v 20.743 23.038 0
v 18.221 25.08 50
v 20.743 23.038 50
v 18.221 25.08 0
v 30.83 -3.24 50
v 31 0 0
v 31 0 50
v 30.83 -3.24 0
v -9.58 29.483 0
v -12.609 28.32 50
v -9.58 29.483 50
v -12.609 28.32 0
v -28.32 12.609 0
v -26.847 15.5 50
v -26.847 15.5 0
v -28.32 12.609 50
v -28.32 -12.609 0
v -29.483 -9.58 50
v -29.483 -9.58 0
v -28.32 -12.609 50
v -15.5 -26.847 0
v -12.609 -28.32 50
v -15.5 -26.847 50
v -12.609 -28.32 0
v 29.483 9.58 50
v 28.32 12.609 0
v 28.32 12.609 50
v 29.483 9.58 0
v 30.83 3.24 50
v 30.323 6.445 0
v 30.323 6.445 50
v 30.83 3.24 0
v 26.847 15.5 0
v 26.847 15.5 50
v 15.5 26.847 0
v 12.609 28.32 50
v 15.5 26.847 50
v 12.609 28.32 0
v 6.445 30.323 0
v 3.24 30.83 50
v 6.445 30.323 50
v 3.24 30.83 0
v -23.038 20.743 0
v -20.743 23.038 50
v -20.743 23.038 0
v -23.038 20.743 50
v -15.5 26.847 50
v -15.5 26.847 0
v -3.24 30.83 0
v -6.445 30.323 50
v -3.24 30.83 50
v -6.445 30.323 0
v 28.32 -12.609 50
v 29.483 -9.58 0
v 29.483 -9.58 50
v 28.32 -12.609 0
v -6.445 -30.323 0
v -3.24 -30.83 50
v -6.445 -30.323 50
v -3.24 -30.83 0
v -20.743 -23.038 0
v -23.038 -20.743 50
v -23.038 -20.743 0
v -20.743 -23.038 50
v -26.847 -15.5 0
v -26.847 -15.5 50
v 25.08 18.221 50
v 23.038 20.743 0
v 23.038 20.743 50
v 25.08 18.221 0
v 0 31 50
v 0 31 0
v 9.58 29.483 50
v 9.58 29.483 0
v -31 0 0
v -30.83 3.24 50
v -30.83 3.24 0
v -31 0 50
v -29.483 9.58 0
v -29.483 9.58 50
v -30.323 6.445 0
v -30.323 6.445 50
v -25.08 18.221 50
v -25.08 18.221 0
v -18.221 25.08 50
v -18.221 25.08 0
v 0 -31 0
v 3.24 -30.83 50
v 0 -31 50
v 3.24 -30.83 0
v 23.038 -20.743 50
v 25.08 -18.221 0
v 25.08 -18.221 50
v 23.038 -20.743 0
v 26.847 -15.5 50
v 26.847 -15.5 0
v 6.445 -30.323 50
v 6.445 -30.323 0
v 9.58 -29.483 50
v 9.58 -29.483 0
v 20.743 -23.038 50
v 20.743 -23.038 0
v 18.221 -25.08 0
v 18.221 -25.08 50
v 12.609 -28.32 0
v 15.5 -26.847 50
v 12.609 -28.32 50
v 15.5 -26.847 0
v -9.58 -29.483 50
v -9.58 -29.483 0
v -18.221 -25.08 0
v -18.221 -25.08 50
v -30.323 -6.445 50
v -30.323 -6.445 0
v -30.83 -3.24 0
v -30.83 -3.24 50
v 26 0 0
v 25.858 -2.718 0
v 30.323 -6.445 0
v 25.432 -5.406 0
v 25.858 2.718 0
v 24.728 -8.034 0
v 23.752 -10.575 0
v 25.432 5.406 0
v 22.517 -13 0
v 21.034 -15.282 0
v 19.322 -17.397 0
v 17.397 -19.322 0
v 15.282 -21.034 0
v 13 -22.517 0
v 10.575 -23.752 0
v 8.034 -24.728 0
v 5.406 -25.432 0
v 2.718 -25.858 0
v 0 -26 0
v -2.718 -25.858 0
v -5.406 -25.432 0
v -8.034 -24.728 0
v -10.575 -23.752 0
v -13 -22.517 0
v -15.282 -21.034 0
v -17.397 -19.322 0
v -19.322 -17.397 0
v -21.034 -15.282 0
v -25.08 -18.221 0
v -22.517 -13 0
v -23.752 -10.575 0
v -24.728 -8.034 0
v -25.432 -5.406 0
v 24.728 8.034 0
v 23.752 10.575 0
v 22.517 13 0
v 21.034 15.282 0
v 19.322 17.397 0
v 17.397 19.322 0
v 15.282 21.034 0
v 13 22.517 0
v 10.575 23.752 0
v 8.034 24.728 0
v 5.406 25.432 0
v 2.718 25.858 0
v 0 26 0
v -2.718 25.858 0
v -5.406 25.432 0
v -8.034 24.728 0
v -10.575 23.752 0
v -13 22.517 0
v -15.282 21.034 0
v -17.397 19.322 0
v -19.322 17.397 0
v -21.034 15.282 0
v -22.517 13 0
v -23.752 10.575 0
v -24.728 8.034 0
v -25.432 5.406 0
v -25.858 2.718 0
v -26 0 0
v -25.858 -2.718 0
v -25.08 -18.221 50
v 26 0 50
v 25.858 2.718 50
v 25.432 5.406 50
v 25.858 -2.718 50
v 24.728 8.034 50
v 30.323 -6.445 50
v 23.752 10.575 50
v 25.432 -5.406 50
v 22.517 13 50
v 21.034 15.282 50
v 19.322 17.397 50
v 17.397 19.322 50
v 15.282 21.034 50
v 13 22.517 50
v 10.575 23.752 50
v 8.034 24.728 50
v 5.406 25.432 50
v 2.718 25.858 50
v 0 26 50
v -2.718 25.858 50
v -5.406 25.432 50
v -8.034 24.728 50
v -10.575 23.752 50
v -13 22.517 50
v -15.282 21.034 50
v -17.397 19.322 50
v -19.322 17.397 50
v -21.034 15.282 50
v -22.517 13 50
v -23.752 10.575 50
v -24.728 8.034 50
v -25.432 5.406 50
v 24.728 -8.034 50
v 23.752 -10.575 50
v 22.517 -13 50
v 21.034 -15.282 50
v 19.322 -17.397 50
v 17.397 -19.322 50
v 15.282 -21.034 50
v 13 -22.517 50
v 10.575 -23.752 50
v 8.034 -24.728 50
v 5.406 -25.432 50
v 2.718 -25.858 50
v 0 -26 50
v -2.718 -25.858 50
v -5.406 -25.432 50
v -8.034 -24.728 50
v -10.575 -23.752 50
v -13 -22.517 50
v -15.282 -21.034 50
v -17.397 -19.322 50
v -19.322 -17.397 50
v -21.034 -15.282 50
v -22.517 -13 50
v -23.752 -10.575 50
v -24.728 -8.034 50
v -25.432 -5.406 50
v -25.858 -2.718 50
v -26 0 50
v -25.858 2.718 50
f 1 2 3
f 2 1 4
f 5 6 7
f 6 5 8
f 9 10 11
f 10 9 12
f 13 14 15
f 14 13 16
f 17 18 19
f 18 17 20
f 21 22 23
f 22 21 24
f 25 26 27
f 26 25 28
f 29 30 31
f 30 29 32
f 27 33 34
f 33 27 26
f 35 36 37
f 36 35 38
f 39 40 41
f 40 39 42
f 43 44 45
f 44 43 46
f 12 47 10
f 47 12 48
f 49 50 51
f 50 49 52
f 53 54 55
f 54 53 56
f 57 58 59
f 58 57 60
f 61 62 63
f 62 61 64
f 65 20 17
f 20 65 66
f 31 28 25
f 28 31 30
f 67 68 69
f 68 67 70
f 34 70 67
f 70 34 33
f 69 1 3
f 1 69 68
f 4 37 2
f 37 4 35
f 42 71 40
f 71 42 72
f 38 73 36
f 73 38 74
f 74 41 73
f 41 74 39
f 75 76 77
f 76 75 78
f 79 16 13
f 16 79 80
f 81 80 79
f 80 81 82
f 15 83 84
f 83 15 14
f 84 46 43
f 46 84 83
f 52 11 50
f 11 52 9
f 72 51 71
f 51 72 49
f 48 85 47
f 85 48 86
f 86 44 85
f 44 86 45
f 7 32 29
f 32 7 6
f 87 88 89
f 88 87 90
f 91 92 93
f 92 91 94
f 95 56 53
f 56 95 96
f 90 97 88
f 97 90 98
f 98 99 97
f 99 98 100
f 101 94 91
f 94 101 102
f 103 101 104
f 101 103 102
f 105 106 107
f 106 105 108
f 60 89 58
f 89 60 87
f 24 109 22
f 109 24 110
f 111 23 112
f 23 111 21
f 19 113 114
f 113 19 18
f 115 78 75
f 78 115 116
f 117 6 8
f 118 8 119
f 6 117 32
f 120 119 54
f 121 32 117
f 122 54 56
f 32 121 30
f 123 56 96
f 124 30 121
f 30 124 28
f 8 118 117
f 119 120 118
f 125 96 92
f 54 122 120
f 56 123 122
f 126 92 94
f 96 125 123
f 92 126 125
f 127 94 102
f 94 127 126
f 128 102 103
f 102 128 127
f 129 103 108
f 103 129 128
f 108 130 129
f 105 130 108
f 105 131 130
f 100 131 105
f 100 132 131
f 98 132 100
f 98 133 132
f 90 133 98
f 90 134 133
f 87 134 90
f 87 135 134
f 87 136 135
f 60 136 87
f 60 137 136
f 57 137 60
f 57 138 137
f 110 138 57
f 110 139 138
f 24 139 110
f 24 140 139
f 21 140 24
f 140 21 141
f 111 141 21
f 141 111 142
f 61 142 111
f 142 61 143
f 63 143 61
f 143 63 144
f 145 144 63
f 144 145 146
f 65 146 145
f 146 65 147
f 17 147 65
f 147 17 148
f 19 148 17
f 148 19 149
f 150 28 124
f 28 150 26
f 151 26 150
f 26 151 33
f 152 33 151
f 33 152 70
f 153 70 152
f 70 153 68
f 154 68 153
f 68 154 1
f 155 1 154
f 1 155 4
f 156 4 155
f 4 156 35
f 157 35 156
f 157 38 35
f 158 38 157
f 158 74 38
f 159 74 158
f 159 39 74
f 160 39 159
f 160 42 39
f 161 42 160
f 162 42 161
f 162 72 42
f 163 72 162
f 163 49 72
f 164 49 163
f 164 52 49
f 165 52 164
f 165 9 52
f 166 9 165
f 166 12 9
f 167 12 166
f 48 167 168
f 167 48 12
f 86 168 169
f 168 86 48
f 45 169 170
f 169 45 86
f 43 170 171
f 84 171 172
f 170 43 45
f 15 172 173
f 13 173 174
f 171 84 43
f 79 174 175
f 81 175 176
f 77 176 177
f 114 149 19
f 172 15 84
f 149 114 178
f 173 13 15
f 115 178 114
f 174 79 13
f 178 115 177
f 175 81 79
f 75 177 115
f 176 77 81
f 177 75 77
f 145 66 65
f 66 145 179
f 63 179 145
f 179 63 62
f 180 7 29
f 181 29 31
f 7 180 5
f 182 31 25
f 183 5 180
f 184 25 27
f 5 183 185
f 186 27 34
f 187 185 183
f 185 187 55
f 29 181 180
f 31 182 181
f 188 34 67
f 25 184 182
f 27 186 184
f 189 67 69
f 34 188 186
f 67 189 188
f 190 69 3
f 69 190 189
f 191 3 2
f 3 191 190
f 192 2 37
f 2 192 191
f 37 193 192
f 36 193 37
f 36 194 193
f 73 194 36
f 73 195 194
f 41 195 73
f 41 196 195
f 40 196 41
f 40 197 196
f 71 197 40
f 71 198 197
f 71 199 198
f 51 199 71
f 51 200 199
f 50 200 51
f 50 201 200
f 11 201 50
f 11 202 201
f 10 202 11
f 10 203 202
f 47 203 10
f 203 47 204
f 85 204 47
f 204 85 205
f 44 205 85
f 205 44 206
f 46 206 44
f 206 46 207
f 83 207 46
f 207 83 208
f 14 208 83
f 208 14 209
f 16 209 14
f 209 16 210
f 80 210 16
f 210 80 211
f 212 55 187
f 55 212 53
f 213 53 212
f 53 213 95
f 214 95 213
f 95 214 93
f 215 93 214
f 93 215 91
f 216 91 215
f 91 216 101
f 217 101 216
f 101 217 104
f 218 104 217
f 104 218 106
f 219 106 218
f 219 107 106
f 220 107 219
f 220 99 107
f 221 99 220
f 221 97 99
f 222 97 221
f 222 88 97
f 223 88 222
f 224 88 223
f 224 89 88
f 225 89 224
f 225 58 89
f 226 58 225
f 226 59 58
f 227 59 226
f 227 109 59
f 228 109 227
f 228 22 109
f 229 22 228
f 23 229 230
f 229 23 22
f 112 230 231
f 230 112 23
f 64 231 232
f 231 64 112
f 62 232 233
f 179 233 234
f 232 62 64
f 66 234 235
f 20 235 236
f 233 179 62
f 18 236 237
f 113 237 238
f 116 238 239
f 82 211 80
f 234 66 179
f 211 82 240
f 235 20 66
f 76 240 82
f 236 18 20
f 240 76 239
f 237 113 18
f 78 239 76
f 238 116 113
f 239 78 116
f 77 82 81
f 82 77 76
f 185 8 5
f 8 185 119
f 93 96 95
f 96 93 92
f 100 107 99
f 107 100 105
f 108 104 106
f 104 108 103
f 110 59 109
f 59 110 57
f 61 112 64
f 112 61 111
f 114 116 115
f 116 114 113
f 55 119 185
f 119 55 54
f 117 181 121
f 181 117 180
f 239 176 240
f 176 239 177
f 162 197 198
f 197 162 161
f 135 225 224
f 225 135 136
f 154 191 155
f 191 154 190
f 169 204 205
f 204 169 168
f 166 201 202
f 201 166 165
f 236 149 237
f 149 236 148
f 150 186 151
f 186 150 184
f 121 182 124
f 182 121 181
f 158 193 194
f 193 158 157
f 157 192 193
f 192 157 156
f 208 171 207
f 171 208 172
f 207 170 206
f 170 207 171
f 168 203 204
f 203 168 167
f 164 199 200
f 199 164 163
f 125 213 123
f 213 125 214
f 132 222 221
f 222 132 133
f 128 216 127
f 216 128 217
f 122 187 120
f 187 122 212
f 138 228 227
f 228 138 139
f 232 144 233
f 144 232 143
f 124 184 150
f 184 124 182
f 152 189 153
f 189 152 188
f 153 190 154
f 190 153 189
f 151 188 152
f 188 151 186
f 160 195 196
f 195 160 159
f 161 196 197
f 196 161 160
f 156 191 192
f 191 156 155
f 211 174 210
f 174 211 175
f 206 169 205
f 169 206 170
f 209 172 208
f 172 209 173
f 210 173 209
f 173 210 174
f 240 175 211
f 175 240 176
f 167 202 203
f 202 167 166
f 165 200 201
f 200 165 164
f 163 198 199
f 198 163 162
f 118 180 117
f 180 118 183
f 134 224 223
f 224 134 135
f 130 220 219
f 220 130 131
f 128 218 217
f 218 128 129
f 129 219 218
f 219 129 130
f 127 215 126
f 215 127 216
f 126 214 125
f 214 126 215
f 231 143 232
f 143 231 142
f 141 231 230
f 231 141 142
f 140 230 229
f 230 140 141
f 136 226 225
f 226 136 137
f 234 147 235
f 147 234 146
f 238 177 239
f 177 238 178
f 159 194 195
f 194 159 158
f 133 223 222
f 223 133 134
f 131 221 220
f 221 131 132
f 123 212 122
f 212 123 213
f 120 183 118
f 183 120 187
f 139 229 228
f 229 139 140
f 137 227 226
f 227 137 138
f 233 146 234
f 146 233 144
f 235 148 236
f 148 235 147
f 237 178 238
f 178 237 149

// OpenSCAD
hose(id=52, od=62, height=50);

module hose(id=10, od=15, height=10) {
    difference() {
        $fn = 60;
        cylinder(d=od, h=height);
        translate([0, 0, -0.5])
        cylinder(d=id, h=height+1);
    }
}
